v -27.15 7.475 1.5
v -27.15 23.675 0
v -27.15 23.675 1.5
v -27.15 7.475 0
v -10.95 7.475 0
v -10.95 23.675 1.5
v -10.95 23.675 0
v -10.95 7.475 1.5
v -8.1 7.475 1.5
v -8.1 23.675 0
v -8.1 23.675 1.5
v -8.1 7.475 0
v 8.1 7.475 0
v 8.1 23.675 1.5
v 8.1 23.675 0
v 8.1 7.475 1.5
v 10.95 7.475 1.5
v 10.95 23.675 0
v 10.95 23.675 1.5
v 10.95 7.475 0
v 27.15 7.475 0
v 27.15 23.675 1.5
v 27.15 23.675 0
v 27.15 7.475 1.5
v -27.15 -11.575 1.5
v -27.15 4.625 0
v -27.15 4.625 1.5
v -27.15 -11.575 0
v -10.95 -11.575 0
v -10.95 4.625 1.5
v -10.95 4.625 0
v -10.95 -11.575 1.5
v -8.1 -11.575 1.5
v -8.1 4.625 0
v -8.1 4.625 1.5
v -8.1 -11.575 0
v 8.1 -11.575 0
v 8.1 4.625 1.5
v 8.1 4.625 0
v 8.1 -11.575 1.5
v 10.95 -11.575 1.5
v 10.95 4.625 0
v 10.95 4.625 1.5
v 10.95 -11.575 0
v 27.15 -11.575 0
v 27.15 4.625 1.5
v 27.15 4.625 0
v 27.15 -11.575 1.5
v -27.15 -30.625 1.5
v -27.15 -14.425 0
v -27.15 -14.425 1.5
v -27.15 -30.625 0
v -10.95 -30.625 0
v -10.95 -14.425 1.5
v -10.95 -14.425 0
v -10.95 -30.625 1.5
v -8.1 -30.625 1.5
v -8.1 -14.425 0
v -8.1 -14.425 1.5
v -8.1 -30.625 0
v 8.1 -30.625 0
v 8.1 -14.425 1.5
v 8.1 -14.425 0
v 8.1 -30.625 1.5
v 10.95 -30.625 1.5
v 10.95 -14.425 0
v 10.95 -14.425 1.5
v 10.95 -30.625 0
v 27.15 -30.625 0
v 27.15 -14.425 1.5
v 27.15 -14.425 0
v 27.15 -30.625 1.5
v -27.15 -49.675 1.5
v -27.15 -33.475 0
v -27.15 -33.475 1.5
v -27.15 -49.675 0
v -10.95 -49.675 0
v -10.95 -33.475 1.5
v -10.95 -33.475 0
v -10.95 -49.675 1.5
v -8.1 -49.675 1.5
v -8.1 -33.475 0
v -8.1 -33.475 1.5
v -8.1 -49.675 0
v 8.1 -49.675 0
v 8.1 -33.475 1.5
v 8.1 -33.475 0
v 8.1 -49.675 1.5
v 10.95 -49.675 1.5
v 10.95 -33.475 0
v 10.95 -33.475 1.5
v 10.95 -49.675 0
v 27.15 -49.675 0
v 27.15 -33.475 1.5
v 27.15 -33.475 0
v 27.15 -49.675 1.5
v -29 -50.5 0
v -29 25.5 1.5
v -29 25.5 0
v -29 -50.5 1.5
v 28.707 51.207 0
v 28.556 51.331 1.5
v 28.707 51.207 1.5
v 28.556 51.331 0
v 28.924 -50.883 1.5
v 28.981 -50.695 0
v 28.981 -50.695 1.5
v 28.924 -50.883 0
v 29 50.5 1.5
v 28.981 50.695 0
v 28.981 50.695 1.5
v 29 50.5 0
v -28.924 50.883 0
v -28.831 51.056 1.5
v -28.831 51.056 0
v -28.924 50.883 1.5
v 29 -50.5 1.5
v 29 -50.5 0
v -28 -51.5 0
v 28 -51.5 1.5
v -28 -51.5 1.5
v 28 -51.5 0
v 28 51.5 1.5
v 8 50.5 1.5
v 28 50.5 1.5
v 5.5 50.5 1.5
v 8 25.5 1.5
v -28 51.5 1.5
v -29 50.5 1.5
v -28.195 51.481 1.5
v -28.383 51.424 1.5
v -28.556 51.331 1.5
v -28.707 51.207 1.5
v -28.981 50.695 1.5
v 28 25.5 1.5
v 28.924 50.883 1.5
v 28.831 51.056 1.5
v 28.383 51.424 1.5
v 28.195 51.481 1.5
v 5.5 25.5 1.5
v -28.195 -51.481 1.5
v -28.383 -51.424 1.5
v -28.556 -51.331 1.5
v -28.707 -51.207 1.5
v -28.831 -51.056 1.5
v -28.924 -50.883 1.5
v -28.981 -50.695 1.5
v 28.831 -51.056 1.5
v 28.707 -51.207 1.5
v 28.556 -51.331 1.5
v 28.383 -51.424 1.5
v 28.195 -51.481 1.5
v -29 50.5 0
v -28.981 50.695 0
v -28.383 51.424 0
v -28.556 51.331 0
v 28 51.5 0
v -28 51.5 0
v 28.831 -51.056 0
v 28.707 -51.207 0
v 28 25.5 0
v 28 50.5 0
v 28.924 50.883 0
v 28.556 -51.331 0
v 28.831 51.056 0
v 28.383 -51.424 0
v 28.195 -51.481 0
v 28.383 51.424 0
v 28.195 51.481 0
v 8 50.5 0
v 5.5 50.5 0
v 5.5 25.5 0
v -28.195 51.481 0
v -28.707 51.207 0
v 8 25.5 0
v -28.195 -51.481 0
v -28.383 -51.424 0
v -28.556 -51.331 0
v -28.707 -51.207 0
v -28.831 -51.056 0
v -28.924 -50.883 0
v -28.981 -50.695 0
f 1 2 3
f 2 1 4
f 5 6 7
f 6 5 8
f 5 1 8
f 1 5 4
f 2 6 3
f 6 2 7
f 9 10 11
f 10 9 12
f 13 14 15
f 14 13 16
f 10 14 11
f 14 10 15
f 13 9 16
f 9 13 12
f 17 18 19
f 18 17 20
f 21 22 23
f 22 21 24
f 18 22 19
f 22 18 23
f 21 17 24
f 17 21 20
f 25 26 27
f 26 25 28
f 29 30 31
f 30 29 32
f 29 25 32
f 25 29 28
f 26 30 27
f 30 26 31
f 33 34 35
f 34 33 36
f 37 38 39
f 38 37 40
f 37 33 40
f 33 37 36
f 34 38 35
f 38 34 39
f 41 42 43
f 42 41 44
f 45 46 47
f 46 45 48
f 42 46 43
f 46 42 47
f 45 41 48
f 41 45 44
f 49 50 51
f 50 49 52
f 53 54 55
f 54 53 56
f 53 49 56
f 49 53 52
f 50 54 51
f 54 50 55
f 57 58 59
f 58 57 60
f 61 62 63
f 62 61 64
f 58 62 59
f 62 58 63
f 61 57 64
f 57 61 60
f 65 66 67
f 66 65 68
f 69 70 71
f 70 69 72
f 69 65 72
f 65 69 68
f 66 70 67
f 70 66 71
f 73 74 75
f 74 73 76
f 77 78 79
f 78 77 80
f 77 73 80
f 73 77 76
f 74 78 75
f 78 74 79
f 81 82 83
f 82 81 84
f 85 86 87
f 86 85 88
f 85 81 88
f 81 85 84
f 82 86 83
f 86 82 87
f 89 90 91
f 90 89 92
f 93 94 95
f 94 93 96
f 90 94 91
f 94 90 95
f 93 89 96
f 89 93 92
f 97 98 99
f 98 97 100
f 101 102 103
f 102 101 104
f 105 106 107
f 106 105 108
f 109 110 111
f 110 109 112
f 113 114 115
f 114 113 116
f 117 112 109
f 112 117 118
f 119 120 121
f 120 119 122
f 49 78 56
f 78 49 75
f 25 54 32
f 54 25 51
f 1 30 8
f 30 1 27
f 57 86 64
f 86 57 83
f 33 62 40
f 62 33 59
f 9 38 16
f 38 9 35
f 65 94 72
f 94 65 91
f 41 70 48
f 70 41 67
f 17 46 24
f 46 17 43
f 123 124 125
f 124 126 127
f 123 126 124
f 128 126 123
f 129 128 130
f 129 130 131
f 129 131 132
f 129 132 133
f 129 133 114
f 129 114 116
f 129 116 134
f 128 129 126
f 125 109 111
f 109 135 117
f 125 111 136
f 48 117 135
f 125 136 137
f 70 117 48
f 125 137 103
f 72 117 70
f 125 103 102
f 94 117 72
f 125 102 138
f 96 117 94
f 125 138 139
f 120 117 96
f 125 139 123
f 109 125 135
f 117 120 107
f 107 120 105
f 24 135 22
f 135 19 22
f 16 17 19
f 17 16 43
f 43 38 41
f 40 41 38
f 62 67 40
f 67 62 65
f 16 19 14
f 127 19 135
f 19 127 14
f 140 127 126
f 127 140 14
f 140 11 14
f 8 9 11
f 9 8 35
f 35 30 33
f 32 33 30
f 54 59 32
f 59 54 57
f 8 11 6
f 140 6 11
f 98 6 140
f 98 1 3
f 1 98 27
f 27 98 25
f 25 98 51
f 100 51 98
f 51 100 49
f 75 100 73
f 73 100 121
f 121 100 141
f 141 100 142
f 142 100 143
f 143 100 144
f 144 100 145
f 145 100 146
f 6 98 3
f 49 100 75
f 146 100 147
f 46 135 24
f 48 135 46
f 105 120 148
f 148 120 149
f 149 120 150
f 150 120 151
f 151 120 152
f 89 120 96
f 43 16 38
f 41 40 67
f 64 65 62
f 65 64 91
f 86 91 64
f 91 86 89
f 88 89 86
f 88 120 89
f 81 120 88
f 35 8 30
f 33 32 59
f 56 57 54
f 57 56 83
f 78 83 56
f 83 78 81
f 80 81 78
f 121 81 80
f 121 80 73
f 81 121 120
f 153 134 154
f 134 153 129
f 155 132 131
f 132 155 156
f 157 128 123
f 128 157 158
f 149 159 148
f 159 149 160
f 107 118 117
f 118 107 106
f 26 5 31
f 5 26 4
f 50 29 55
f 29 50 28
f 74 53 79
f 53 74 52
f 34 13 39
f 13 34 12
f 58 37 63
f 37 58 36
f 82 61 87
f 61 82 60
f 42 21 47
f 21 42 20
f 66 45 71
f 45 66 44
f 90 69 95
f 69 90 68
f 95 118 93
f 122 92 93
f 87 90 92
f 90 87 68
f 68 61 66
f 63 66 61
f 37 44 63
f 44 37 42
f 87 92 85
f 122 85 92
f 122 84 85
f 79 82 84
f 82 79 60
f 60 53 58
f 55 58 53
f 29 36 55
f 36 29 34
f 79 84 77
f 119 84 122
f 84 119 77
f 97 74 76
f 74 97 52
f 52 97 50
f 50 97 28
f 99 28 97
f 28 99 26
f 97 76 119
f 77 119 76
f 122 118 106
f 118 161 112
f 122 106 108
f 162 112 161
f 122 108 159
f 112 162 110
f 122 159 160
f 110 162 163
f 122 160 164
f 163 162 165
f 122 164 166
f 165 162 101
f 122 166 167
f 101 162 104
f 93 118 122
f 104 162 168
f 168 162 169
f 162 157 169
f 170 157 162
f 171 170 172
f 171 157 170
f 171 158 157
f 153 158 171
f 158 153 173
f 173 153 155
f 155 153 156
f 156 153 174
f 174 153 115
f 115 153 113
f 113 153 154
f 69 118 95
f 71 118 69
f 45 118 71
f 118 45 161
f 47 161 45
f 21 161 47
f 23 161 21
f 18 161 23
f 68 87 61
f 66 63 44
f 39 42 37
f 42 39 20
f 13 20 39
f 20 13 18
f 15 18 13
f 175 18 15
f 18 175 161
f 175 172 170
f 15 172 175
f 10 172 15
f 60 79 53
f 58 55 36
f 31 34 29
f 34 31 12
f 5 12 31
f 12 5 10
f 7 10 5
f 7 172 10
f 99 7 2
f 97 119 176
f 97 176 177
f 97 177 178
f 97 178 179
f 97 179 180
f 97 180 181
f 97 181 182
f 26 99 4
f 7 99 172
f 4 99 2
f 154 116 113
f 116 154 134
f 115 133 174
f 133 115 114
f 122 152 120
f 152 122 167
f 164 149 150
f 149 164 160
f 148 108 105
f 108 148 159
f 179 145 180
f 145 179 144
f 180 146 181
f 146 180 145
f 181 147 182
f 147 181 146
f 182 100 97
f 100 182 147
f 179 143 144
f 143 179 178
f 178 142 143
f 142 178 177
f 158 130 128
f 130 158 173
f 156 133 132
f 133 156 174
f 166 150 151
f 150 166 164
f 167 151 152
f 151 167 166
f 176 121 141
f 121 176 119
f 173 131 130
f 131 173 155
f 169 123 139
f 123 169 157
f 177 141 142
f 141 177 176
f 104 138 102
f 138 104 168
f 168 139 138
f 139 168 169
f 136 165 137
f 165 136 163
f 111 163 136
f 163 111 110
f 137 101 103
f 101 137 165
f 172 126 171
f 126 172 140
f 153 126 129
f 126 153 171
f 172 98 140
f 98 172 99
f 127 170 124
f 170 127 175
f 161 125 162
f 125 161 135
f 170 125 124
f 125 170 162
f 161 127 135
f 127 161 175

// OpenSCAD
// MacroPad RP2040 Top Interim Layer
// Design for Adafruit MacroPad RP2040 keyboard controller
// Author: Generated for CircuitPython EVM Controller project
// License: MIT

// Cheatsheet: https://openscad.org/cheatsheet/index.html?version=2021.01

// =============================================================================
// PARAMETERS
// =============================================================================

// RP2040 PCB parameters
pcb_length = 105;          // RP2040 PCB length (mm)
pcb_width = 60;            // RP2040 PCB width (mm)
pcb_thickness = 1.6;       // Standard PCB thickness (mm)
pcb_clearance = 1;         // Space around PCB (mm)
pcb_height_clearance = 8;  // Space above PCB for components (mm)

// Overall cover dimensions
cover_length = 103;          // Total width of cover (mm)  
cover_width = 58;         // Total length of cover (mm)
cover_thickness = 1.5;       // Thickness of top plate (mm)
corner_radius = 1;         // Rounded corner radius (mm)

// Key switch parameters (Cherry MX compatible) + some space
key_switch_size = 14 + 2;   // Square hole size for key switches (mm)
key_switch_spacing = 19.05; // Center-to-center spacing (0.75" standard)
key_rows = 4;              // Number of rows
key_cols = 3;              // Number of columns

// Key switch grid positioning (relative to cover center)
keys_offset_x = 0;         // X offset of key grid center
keys_offset_y = -13;       // Y offset of key grid center (negative = toward bottom)

// Mounting and clearance
wall_thickness = 2;        // Wall thickness for sides (if adding later)
clearance = 0.2;           // General clearance for 3D printing (mm)

// =============================================================================
// MAIN OBJECT
// =============================================================================

difference() {
        
    // Base cover plate
    base_cover();
    
    // Cut out holes for key switches
    key_switch_holes();
    
    // Create holes around LCD and encoder switch
    lcd_hole();
    
    encoder_hole();
}

// =============================================================================
// MODULES (Functions)
// =============================================================================

// Create the base cover plate with rounded corners
module base_cover() {
    
    union() {
        // Using hull() with corner cylinders to create rounded rectangle
        hull() {
            // Four corner cylinders to create rounded rectangle
            translate([-(cover_width/2 - corner_radius), -(cover_length/2 - corner_radius), 0])
                cylinder(h = cover_thickness, r = corner_radius, $fn = 32);
            
            translate([+(cover_width/2 - corner_radius), -(cover_length/2 - corner_radius), 0])
                cylinder(h = cover_thickness, r = corner_radius, $fn = 32);
            
            translate([+(cover_width/2 - corner_radius), +(cover_length/2 - corner_radius), 0])
                cylinder(h = cover_thickness, r = corner_radius, $fn = 32);
            
            translate([-(cover_width/2 - corner_radius), +(cover_length/2 - corner_radius), 0])
                cylinder(h = cover_thickness, r = corner_radius, $fn = 32);
        }
        
    }
}

// Create all key switch holes in a 3x4 matrix
module key_switch_holes() {
    // Calculate starting position for grid (top-left key)
    start_x = keys_offset_x - (key_switch_spacing * (key_cols - 1) / 2);
    start_y = keys_offset_y + (key_switch_spacing * (key_rows - 1) / 2);
    
    // Create grid of holes
    for (row = [0 : key_rows - 1]) {
        for (col = [0 : key_cols - 1]) {
            translate([
                start_x + (col * key_switch_spacing),
                start_y - (row * key_switch_spacing),
                -0.5  // Extend slightly below surface for clean cut
            ]) {
                // Square hole for key switch
                cube([
                    key_switch_size + clearance,
                    key_switch_size + clearance,
                    cover_thickness + 5
                ], center = true);
            }
        }
    }
}


// Create hole for LCD display
module lcd_hole() {
    translate([-13, 38,-0.5])
        cube([37, 25, cover_thickness + 5], center = true);
}


// Create hole for the encoder switch
module encoder_hole() {
    translate([18, 38,-0.5])
        cube([20, 25, cover_thickness + 5], center = true);
}
